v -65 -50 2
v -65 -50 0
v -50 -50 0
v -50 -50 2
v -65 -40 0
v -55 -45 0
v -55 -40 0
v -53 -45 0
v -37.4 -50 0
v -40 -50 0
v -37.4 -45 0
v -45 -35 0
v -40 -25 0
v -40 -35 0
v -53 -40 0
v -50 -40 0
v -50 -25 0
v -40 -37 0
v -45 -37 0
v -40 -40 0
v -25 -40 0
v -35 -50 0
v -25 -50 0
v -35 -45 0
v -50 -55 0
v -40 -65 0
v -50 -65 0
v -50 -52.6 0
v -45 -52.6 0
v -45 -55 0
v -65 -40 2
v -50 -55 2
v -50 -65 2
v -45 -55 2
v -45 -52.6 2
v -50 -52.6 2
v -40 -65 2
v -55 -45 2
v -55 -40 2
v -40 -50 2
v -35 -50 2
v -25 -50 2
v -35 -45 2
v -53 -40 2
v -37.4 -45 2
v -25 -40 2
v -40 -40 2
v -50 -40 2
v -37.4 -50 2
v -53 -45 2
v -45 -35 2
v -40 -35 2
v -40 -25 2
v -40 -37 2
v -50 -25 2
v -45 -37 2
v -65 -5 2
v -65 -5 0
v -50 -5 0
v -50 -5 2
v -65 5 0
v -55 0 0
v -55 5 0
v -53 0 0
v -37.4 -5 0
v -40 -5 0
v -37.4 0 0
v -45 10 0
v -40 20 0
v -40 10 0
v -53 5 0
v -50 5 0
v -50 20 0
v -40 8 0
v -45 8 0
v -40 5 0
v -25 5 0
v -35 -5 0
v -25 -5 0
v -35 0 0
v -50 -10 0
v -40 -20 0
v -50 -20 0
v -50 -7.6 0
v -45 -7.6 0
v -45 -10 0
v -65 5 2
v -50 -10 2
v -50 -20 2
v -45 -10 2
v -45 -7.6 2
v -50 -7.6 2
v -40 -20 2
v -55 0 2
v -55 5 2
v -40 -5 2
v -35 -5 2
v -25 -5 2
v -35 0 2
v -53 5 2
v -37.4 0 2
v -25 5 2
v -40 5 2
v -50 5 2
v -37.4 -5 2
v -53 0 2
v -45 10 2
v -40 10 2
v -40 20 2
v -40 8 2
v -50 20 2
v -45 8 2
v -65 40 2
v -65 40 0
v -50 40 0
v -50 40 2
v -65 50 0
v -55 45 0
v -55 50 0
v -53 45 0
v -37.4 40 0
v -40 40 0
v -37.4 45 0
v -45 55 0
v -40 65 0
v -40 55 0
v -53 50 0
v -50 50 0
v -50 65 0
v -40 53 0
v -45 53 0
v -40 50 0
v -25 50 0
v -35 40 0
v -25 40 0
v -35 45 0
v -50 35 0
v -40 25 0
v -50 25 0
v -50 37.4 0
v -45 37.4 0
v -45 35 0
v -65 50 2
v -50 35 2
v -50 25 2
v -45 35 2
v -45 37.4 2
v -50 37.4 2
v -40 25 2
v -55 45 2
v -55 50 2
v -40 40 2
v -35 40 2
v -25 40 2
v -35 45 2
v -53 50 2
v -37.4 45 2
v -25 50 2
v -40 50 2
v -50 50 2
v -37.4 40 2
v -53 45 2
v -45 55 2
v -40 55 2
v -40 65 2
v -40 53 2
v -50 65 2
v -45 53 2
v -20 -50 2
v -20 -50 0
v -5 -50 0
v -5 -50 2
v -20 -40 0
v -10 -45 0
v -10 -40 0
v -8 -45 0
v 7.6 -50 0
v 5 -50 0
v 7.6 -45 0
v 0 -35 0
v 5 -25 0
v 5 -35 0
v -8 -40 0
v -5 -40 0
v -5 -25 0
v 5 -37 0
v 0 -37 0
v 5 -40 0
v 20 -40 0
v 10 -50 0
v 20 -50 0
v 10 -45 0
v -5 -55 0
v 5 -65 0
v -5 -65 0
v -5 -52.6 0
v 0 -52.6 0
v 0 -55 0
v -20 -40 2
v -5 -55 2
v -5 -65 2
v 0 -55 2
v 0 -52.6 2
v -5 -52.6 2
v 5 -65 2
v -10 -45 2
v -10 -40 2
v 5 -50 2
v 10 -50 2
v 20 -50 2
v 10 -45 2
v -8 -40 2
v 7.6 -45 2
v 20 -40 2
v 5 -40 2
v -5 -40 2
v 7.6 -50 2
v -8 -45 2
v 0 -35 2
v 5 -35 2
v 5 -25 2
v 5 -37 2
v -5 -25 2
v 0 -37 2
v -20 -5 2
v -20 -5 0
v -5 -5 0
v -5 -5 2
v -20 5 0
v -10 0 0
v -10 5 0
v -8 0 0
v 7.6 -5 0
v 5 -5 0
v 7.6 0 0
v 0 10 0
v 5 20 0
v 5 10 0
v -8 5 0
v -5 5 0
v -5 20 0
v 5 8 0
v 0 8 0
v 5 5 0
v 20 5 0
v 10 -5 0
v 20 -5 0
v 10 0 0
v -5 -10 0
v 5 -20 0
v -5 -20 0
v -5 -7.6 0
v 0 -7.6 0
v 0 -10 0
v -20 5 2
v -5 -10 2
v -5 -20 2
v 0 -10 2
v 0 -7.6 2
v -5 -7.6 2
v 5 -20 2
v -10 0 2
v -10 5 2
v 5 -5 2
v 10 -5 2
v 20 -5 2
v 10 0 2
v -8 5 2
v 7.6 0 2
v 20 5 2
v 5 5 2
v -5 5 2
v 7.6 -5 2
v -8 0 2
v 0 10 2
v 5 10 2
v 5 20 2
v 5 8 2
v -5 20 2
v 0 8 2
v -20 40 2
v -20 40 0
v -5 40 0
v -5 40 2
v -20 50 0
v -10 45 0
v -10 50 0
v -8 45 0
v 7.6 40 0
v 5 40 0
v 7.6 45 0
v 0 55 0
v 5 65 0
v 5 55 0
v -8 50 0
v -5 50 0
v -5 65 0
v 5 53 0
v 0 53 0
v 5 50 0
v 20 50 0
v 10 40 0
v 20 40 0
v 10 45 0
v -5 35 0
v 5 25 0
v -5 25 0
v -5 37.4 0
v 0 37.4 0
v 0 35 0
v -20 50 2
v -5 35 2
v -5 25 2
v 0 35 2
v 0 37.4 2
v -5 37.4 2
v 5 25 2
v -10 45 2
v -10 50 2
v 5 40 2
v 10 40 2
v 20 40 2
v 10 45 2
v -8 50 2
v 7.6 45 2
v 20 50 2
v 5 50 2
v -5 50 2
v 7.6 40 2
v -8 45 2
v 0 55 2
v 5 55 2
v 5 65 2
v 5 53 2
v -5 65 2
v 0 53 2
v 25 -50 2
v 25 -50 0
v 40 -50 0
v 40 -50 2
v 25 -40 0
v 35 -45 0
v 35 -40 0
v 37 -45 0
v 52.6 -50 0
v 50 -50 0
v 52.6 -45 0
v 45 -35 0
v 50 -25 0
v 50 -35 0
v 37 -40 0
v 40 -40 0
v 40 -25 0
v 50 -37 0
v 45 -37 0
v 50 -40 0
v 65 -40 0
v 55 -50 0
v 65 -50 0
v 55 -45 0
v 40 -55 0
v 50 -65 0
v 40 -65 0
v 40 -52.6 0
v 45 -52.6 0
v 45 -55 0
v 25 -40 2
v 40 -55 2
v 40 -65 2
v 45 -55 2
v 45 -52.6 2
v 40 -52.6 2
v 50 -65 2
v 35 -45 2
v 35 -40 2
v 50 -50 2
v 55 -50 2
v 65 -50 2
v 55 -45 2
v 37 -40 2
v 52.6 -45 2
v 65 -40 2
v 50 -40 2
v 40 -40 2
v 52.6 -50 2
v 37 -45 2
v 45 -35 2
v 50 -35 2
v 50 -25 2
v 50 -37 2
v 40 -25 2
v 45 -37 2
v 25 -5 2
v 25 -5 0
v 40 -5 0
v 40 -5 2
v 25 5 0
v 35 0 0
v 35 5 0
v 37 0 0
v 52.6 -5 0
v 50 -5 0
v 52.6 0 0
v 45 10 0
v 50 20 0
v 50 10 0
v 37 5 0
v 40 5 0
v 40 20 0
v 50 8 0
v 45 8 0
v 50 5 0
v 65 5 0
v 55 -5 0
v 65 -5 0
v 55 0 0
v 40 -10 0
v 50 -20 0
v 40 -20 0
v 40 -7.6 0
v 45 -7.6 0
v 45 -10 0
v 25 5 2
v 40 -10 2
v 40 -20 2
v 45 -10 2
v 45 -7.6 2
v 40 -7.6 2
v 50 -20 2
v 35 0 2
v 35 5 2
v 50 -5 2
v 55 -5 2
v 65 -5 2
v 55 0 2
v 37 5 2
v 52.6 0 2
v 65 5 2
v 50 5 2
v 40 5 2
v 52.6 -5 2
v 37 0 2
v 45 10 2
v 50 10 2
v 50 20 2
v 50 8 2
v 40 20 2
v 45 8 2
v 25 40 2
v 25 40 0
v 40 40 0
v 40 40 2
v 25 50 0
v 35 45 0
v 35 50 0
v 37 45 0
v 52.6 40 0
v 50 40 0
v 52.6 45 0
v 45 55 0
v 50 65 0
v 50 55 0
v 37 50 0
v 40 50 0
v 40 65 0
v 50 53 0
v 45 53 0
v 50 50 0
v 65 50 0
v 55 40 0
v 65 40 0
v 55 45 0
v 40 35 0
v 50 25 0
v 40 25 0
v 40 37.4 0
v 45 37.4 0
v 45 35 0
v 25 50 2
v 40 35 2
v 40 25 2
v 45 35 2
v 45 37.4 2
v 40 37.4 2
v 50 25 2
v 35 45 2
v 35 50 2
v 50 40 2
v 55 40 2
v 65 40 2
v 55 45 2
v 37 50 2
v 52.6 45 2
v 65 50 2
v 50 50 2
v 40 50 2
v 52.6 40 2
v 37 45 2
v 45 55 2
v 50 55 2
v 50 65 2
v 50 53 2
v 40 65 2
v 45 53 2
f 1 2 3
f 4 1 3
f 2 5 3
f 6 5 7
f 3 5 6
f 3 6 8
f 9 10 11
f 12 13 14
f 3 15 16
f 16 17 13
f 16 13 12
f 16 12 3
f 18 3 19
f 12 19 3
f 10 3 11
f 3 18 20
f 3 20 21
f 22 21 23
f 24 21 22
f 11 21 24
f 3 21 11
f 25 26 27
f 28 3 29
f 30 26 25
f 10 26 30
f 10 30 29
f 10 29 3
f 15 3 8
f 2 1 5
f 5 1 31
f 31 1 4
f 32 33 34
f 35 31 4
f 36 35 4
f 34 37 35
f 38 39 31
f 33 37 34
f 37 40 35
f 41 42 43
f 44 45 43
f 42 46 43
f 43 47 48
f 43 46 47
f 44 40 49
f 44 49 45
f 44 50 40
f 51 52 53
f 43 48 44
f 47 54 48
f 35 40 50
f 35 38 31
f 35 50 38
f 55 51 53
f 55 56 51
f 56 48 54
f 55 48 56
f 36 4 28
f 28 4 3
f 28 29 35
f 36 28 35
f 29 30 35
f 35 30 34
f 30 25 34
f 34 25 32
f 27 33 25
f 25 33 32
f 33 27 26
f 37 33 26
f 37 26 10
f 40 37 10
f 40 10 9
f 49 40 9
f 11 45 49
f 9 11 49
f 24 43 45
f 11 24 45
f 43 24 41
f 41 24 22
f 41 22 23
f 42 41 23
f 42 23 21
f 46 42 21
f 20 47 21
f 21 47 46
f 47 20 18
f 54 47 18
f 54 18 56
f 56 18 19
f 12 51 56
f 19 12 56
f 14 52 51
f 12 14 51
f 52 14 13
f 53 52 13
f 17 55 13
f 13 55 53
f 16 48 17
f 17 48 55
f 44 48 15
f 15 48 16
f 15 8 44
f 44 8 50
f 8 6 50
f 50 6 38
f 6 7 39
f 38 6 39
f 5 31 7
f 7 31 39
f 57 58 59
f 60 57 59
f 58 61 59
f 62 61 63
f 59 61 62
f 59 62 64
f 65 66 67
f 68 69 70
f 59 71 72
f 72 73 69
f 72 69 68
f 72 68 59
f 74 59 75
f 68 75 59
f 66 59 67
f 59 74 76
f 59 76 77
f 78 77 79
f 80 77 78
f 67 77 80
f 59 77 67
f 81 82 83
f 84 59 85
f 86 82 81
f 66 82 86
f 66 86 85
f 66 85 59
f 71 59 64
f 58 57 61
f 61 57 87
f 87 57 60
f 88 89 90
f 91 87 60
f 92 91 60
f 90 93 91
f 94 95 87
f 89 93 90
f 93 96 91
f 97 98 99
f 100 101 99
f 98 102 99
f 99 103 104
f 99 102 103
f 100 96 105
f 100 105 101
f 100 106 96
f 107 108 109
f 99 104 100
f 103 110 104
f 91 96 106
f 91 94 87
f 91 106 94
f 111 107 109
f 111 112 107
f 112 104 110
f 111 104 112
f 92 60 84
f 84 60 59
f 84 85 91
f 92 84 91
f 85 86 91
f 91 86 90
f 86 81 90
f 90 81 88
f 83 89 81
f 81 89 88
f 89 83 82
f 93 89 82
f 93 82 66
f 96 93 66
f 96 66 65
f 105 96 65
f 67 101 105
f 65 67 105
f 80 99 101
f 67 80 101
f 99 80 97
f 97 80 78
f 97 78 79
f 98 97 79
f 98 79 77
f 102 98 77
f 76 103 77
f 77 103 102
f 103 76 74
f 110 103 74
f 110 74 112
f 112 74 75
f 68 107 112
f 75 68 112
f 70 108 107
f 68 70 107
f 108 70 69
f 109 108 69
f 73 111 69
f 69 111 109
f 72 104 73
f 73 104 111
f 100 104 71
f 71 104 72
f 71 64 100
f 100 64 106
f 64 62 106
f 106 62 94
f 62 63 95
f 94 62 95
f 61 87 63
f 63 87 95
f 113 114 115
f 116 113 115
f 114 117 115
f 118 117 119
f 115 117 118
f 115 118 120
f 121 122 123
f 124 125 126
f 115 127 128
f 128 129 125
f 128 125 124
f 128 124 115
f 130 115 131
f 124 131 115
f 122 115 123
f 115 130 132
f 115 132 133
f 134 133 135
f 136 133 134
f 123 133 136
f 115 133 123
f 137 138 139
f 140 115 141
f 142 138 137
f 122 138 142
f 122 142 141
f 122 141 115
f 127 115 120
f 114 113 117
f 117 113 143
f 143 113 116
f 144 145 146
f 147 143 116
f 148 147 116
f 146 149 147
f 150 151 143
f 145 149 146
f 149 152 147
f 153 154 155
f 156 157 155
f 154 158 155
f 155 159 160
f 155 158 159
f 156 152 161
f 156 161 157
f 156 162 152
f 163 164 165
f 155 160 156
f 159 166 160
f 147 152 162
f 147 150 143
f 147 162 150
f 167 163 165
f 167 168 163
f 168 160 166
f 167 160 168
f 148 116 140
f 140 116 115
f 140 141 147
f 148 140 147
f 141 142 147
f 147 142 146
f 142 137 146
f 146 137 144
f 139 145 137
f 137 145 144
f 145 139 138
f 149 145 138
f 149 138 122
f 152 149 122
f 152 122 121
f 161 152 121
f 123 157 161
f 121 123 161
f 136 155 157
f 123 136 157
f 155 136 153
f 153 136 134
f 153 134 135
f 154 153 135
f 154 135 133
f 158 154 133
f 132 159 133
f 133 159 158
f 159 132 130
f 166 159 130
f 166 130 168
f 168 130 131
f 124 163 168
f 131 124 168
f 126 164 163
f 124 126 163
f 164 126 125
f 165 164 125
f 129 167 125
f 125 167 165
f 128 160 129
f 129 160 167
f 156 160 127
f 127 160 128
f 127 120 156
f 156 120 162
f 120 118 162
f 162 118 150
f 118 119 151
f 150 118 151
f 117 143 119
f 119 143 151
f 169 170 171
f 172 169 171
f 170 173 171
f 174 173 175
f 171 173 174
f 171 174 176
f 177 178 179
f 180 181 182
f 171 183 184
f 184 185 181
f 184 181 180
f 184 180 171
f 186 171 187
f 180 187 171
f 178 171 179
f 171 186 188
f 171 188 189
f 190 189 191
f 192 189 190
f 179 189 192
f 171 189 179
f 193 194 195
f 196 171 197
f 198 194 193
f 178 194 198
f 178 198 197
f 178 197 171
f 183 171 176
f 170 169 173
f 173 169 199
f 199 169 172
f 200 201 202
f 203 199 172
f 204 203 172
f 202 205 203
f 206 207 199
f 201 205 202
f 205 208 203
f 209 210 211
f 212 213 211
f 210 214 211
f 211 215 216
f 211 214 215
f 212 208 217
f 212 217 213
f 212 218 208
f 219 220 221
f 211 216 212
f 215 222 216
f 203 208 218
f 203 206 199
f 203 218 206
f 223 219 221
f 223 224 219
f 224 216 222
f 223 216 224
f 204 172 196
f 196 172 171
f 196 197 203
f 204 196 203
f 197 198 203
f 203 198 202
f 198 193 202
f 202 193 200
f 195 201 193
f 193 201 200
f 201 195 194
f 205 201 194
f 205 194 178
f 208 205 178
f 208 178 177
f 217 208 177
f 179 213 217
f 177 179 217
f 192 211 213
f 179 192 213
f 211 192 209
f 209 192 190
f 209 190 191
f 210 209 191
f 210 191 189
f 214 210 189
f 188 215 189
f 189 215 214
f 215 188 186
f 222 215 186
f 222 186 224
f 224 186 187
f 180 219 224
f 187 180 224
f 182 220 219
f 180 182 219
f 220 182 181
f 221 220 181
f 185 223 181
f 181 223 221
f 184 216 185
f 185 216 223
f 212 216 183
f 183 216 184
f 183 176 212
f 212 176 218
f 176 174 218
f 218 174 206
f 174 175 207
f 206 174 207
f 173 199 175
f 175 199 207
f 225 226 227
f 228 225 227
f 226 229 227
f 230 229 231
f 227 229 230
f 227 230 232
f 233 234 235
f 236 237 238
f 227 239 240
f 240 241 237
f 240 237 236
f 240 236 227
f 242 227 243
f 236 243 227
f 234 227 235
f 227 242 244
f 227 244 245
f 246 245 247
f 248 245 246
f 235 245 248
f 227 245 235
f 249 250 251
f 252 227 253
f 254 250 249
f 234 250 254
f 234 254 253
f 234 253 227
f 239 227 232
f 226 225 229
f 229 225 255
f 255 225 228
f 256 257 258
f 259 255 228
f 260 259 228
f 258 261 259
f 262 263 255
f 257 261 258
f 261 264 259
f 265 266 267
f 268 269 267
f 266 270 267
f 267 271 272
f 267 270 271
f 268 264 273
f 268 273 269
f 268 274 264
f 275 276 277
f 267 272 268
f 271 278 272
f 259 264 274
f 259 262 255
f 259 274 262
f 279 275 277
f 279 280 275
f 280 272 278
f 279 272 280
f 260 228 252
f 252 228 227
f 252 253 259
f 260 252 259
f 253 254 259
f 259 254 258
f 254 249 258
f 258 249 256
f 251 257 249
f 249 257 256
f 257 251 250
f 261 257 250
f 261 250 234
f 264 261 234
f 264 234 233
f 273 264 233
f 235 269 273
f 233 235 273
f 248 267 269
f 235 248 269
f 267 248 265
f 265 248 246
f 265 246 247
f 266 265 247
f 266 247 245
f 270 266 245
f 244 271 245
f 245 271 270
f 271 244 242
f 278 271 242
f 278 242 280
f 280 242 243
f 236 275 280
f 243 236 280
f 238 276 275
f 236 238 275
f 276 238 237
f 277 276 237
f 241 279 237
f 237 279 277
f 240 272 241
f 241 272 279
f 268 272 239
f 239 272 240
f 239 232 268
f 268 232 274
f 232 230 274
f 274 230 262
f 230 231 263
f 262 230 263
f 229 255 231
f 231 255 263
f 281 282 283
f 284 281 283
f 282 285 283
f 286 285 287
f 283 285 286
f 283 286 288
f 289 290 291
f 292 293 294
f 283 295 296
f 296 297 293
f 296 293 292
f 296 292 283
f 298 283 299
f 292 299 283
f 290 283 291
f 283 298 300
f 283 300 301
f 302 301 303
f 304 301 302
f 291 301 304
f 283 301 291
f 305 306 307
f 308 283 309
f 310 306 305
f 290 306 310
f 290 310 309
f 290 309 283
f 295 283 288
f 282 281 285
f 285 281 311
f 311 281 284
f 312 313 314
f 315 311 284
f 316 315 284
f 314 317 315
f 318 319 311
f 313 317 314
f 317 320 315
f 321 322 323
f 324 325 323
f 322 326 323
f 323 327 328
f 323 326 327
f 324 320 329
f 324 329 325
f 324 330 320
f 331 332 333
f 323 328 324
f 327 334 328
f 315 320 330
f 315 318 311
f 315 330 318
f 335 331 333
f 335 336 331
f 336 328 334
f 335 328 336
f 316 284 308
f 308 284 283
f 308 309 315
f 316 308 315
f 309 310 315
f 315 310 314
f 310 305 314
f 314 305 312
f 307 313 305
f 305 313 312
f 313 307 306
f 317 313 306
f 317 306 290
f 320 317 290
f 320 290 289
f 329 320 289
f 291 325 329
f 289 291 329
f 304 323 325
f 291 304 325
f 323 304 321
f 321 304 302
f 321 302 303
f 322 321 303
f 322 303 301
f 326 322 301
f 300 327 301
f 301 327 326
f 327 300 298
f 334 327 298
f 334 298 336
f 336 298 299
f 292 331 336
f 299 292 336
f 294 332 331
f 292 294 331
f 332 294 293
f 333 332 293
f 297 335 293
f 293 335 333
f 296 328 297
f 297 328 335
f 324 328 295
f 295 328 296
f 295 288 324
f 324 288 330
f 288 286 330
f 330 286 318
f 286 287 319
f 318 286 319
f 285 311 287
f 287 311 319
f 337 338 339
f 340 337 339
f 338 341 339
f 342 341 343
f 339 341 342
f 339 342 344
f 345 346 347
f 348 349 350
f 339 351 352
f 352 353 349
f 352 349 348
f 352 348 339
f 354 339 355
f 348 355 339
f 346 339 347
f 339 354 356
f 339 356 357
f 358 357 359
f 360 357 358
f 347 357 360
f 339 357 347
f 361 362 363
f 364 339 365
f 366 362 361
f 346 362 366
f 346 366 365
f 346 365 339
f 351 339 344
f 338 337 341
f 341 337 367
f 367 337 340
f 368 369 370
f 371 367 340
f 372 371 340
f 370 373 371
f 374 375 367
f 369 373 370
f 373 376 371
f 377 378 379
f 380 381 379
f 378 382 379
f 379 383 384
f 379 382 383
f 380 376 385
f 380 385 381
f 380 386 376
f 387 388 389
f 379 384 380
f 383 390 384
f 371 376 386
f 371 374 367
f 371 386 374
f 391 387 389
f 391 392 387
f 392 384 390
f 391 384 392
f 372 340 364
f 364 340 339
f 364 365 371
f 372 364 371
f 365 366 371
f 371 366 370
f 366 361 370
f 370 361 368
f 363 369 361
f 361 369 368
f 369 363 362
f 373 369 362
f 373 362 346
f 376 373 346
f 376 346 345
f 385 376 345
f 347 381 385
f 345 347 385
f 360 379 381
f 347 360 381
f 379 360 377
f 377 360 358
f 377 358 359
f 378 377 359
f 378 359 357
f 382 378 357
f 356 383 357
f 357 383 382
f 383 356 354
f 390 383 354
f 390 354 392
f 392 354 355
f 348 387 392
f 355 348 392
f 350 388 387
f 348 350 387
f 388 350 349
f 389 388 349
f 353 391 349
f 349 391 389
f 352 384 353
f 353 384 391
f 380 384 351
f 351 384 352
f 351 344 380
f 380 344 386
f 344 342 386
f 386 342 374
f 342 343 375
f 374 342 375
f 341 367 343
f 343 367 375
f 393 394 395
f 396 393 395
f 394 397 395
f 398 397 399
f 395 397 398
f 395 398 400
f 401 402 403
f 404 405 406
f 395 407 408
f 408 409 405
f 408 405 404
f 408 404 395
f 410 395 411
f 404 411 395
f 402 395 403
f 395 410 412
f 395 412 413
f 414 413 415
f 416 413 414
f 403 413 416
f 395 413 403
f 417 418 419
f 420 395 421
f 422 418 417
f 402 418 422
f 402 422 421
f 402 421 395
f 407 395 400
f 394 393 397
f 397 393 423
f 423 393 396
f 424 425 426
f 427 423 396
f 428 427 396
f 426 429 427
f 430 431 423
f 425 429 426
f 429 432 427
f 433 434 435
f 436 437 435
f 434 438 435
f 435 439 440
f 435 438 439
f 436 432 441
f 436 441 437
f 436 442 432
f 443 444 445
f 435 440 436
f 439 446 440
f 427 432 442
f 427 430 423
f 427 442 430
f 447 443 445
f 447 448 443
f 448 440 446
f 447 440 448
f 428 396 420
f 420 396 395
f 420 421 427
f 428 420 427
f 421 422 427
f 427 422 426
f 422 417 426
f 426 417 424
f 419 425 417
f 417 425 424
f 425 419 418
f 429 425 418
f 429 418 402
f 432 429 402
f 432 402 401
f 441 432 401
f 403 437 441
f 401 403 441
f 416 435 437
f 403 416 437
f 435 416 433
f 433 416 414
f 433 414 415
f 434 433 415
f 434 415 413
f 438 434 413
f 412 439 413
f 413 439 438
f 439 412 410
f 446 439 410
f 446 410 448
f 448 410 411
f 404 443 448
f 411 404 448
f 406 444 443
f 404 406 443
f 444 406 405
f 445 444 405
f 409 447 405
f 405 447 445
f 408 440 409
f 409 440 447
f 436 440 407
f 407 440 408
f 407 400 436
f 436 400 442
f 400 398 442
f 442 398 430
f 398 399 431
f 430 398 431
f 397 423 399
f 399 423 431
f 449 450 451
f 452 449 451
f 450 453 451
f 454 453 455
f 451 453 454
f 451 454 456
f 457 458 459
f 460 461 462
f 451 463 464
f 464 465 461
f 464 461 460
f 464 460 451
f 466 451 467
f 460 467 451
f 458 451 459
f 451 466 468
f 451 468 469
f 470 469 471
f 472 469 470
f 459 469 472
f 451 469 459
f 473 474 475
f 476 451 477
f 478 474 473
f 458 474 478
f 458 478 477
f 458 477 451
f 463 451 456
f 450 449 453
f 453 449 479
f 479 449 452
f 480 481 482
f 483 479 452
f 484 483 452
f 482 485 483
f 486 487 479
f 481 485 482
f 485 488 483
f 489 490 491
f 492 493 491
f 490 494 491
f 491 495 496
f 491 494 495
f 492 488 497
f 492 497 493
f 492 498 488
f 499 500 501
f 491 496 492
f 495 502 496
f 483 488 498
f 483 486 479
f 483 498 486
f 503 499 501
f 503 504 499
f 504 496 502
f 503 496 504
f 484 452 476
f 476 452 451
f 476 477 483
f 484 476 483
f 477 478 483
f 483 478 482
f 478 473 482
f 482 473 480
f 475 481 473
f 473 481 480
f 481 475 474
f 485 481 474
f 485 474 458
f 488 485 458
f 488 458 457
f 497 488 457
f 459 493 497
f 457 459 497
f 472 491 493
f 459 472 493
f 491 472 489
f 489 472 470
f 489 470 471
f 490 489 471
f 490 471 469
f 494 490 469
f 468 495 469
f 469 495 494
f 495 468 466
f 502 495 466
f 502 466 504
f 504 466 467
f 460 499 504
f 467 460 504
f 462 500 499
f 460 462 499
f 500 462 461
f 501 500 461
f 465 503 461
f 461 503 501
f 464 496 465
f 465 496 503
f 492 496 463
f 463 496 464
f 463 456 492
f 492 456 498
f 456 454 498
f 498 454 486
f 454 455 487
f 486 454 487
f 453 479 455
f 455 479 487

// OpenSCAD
union() {
union() {
union() {
union() {
union() {
union() {
union() {
union() {
union() {
translate([0,0,0]) translate([-45,-45,0]) union() {
difference() {
translate([0,0,1.0]) cube([10,40,2.0],center=true); 
union() {
translate([5.0,10.0,0]) rotate([90,0,0]) translate([0,0,1.0]) cube([10,40,2.0],center=true); 
rotate([0,0,180]) translate([5.0,10.0,0]) rotate([90,0,0]) translate([0,0,1.2]) cube([10,40,2.4],center=true); 
}
}
rotate([0,0,90]) difference() {
translate([0,0,1.0]) cube([10,40,2.0],center=true); 
union() {
translate([5.0,10.0,0]) rotate([90,0,0]) translate([0,0,1.0]) cube([10,40,2.0],center=true); 
rotate([0,0,180]) translate([5.0,10.0,0]) rotate([90,0,0]) translate([0,0,1.2]) cube([10,40,2.4],center=true); 
}
}
}
}
translate([0,45,0]) translate([-45,-45,0]) union() {
difference() {
translate([0,0,1.0]) cube([10,40,2.0],center=true); 
union() {
translate([5.0,10.0,0]) rotate([90,0,0]) translate([0,0,1.0]) cube([10,40,2.0],center=true); 
rotate([0,0,180]) translate([5.0,10.0,0]) rotate([90,0,0]) translate([0,0,1.2]) cube([10,40,2.4],center=true); 
}
}
rotate([0,0,90]) difference() {
translate([0,0,1.0]) cube([10,40,2.0],center=true); 
union() {
translate([5.0,10.0,0]) rotate([90,0,0]) translate([0,0,1.0]) cube([10,40,2.0],center=true); 
rotate([0,0,180]) translate([5.0,10.0,0]) rotate([90,0,0]) translate([0,0,1.2]) cube([10,40,2.4],center=true); 
}
}
}
}
translate([0,90,0]) translate([-45,-45,0]) union() {
difference() {
translate([0,0,1.0]) cube([10,40,2.0],center=true); 
union() {
translate([5.0,10.0,0]) rotate([90,0,0]) translate([0,0,1.0]) cube([10,40,2.0],center=true); 
rotate([0,0,180]) translate([5.0,10.0,0]) rotate([90,0,0]) translate([0,0,1.2]) cube([10,40,2.4],center=true); 
}
}
rotate([0,0,90]) difference() {
translate([0,0,1.0]) cube([10,40,2.0],center=true); 
union() {
translate([5.0,10.0,0]) rotate([90,0,0]) translate([0,0,1.0]) cube([10,40,2.0],center=true); 
rotate([0,0,180]) translate([5.0,10.0,0]) rotate([90,0,0]) translate([0,0,1.2]) cube([10,40,2.4],center=true); 
}
}
}
}
translate([45,0,0]) translate([-45,-45,0]) union() {
difference() {
translate([0,0,1.0]) cube([10,40,2.0],center=true); 
union() {
translate([5.0,10.0,0]) rotate([90,0,0]) translate([0,0,1.0]) cube([10,40,2.0],center=true); 
rotate([0,0,180]) translate([5.0,10.0,0]) rotate([90,0,0]) translate([0,0,1.2]) cube([10,40,2.4],center=true); 
}
}
rotate([0,0,90]) difference() {
translate([0,0,1.0]) cube([10,40,2.0],center=true); 
union() {
translate([5.0,10.0,0]) rotate([90,0,0]) translate([0,0,1.0]) cube([10,40,2.0],center=true); 
rotate([0,0,180]) translate([5.0,10.0,0]) rotate([90,0,0]) translate([0,0,1.2]) cube([10,40,2.4],center=true); 
}
}
}
}
translate([45,45,0]) translate([-45,-45,0]) union() {
difference() {
translate([0,0,1.0]) cube([10,40,2.0],center=true); 
union() {
translate([5.0,10.0,0]) rotate([90,0,0]) translate([0,0,1.0]) cube([10,40,2.0],center=true); 
rotate([0,0,180]) translate([5.0,10.0,0]) rotate([90,0,0]) translate([0,0,1.2]) cube([10,40,2.4],center=true); 
}
}
rotate([0,0,90]) difference() {
translate([0,0,1.0]) cube([10,40,2.0],center=true); 
union() {
translate([5.0,10.0,0]) rotate([90,0,0]) translate([0,0,1.0]) cube([10,40,2.0],center=true); 
rotate([0,0,180]) translate([5.0,10.0,0]) rotate([90,0,0]) translate([0,0,1.2]) cube([10,40,2.4],center=true); 
}
}
}
}
translate([45,90,0]) translate([-45,-45,0]) union() {
difference() {
translate([0,0,1.0]) cube([10,40,2.0],center=true); 
union() {
translate([5.0,10.0,0]) rotate([90,0,0]) translate([0,0,1.0]) cube([10,40,2.0],center=true); 
rotate([0,0,180]) translate([5.0,10.0,0]) rotate([90,0,0]) translate([0,0,1.2]) cube([10,40,2.4],center=true); 
}
}
rotate([0,0,90]) difference() {
translate([0,0,1.0]) cube([10,40,2.0],center=true); 
union() {
translate([5.0,10.0,0]) rotate([90,0,0]) translate([0,0,1.0]) cube([10,40,2.0],center=true); 
rotate([0,0,180]) translate([5.0,10.0,0]) rotate([90,0,0]) translate([0,0,1.2]) cube([10,40,2.4],center=true); 
}
}
}
}
translate([90,0,0]) translate([-45,-45,0]) union() {
difference() {
translate([0,0,1.0]) cube([10,40,2.0],center=true); 
union() {
translate([5.0,10.0,0]) rotate([90,0,0]) translate([0,0,1.0]) cube([10,40,2.0],center=true); 
rotate([0,0,180]) translate([5.0,10.0,0]) rotate([90,0,0]) translate([0,0,1.2]) cube([10,40,2.4],center=true); 
}
}
rotate([0,0,90]) difference() {
translate([0,0,1.0]) cube([10,40,2.0],center=true); 
union() {
translate([5.0,10.0,0]) rotate([90,0,0]) translate([0,0,1.0]) cube([10,40,2.0],center=true); 
rotate([0,0,180]) translate([5.0,10.0,0]) rotate([90,0,0]) translate([0,0,1.2]) cube([10,40,2.4],center=true); 
}
}
}
}
translate([90,45,0]) translate([-45,-45,0]) union() {
difference() {
translate([0,0,1.0]) cube([10,40,2.0],center=true); 
union() {
translate([5.0,10.0,0]) rotate([90,0,0]) translate([0,0,1.0]) cube([10,40,2.0],center=true); 
rotate([0,0,180]) translate([5.0,10.0,0]) rotate([90,0,0]) translate([0,0,1.2]) cube([10,40,2.4],center=true); 
}
}
rotate([0,0,90]) difference() {
translate([0,0,1.0]) cube([10,40,2.0],center=true); 
union() {
translate([5.0,10.0,0]) rotate([90,0,0]) translate([0,0,1.0]) cube([10,40,2.0],center=true); 
rotate([0,0,180]) translate([5.0,10.0,0]) rotate([90,0,0]) translate([0,0,1.2]) cube([10,40,2.4],center=true); 
}
}
}
}
translate([90,90,0]) translate([-45,-45,0]) union() {
difference() {
translate([0,0,1.0]) cube([10,40,2.0],center=true); 
union() {
translate([5.0,10.0,0]) rotate([90,0,0]) translate([0,0,1.0]) cube([10,40,2.0],center=true); 
rotate([0,0,180]) translate([5.0,10.0,0]) rotate([90,0,0]) translate([0,0,1.2]) cube([10,40,2.4],center=true); 
}
}
rotate([0,0,90]) difference() {
translate([0,0,1.0]) cube([10,40,2.0],center=true); 
union() {
translate([5.0,10.0,0]) rotate([90,0,0]) translate([0,0,1.0]) cube([10,40,2.0],center=true); 
rotate([0,0,180]) translate([5.0,10.0,0]) rotate([90,0,0]) translate([0,0,1.2]) cube([10,40,2.4],center=true); 
}
}
}
}
